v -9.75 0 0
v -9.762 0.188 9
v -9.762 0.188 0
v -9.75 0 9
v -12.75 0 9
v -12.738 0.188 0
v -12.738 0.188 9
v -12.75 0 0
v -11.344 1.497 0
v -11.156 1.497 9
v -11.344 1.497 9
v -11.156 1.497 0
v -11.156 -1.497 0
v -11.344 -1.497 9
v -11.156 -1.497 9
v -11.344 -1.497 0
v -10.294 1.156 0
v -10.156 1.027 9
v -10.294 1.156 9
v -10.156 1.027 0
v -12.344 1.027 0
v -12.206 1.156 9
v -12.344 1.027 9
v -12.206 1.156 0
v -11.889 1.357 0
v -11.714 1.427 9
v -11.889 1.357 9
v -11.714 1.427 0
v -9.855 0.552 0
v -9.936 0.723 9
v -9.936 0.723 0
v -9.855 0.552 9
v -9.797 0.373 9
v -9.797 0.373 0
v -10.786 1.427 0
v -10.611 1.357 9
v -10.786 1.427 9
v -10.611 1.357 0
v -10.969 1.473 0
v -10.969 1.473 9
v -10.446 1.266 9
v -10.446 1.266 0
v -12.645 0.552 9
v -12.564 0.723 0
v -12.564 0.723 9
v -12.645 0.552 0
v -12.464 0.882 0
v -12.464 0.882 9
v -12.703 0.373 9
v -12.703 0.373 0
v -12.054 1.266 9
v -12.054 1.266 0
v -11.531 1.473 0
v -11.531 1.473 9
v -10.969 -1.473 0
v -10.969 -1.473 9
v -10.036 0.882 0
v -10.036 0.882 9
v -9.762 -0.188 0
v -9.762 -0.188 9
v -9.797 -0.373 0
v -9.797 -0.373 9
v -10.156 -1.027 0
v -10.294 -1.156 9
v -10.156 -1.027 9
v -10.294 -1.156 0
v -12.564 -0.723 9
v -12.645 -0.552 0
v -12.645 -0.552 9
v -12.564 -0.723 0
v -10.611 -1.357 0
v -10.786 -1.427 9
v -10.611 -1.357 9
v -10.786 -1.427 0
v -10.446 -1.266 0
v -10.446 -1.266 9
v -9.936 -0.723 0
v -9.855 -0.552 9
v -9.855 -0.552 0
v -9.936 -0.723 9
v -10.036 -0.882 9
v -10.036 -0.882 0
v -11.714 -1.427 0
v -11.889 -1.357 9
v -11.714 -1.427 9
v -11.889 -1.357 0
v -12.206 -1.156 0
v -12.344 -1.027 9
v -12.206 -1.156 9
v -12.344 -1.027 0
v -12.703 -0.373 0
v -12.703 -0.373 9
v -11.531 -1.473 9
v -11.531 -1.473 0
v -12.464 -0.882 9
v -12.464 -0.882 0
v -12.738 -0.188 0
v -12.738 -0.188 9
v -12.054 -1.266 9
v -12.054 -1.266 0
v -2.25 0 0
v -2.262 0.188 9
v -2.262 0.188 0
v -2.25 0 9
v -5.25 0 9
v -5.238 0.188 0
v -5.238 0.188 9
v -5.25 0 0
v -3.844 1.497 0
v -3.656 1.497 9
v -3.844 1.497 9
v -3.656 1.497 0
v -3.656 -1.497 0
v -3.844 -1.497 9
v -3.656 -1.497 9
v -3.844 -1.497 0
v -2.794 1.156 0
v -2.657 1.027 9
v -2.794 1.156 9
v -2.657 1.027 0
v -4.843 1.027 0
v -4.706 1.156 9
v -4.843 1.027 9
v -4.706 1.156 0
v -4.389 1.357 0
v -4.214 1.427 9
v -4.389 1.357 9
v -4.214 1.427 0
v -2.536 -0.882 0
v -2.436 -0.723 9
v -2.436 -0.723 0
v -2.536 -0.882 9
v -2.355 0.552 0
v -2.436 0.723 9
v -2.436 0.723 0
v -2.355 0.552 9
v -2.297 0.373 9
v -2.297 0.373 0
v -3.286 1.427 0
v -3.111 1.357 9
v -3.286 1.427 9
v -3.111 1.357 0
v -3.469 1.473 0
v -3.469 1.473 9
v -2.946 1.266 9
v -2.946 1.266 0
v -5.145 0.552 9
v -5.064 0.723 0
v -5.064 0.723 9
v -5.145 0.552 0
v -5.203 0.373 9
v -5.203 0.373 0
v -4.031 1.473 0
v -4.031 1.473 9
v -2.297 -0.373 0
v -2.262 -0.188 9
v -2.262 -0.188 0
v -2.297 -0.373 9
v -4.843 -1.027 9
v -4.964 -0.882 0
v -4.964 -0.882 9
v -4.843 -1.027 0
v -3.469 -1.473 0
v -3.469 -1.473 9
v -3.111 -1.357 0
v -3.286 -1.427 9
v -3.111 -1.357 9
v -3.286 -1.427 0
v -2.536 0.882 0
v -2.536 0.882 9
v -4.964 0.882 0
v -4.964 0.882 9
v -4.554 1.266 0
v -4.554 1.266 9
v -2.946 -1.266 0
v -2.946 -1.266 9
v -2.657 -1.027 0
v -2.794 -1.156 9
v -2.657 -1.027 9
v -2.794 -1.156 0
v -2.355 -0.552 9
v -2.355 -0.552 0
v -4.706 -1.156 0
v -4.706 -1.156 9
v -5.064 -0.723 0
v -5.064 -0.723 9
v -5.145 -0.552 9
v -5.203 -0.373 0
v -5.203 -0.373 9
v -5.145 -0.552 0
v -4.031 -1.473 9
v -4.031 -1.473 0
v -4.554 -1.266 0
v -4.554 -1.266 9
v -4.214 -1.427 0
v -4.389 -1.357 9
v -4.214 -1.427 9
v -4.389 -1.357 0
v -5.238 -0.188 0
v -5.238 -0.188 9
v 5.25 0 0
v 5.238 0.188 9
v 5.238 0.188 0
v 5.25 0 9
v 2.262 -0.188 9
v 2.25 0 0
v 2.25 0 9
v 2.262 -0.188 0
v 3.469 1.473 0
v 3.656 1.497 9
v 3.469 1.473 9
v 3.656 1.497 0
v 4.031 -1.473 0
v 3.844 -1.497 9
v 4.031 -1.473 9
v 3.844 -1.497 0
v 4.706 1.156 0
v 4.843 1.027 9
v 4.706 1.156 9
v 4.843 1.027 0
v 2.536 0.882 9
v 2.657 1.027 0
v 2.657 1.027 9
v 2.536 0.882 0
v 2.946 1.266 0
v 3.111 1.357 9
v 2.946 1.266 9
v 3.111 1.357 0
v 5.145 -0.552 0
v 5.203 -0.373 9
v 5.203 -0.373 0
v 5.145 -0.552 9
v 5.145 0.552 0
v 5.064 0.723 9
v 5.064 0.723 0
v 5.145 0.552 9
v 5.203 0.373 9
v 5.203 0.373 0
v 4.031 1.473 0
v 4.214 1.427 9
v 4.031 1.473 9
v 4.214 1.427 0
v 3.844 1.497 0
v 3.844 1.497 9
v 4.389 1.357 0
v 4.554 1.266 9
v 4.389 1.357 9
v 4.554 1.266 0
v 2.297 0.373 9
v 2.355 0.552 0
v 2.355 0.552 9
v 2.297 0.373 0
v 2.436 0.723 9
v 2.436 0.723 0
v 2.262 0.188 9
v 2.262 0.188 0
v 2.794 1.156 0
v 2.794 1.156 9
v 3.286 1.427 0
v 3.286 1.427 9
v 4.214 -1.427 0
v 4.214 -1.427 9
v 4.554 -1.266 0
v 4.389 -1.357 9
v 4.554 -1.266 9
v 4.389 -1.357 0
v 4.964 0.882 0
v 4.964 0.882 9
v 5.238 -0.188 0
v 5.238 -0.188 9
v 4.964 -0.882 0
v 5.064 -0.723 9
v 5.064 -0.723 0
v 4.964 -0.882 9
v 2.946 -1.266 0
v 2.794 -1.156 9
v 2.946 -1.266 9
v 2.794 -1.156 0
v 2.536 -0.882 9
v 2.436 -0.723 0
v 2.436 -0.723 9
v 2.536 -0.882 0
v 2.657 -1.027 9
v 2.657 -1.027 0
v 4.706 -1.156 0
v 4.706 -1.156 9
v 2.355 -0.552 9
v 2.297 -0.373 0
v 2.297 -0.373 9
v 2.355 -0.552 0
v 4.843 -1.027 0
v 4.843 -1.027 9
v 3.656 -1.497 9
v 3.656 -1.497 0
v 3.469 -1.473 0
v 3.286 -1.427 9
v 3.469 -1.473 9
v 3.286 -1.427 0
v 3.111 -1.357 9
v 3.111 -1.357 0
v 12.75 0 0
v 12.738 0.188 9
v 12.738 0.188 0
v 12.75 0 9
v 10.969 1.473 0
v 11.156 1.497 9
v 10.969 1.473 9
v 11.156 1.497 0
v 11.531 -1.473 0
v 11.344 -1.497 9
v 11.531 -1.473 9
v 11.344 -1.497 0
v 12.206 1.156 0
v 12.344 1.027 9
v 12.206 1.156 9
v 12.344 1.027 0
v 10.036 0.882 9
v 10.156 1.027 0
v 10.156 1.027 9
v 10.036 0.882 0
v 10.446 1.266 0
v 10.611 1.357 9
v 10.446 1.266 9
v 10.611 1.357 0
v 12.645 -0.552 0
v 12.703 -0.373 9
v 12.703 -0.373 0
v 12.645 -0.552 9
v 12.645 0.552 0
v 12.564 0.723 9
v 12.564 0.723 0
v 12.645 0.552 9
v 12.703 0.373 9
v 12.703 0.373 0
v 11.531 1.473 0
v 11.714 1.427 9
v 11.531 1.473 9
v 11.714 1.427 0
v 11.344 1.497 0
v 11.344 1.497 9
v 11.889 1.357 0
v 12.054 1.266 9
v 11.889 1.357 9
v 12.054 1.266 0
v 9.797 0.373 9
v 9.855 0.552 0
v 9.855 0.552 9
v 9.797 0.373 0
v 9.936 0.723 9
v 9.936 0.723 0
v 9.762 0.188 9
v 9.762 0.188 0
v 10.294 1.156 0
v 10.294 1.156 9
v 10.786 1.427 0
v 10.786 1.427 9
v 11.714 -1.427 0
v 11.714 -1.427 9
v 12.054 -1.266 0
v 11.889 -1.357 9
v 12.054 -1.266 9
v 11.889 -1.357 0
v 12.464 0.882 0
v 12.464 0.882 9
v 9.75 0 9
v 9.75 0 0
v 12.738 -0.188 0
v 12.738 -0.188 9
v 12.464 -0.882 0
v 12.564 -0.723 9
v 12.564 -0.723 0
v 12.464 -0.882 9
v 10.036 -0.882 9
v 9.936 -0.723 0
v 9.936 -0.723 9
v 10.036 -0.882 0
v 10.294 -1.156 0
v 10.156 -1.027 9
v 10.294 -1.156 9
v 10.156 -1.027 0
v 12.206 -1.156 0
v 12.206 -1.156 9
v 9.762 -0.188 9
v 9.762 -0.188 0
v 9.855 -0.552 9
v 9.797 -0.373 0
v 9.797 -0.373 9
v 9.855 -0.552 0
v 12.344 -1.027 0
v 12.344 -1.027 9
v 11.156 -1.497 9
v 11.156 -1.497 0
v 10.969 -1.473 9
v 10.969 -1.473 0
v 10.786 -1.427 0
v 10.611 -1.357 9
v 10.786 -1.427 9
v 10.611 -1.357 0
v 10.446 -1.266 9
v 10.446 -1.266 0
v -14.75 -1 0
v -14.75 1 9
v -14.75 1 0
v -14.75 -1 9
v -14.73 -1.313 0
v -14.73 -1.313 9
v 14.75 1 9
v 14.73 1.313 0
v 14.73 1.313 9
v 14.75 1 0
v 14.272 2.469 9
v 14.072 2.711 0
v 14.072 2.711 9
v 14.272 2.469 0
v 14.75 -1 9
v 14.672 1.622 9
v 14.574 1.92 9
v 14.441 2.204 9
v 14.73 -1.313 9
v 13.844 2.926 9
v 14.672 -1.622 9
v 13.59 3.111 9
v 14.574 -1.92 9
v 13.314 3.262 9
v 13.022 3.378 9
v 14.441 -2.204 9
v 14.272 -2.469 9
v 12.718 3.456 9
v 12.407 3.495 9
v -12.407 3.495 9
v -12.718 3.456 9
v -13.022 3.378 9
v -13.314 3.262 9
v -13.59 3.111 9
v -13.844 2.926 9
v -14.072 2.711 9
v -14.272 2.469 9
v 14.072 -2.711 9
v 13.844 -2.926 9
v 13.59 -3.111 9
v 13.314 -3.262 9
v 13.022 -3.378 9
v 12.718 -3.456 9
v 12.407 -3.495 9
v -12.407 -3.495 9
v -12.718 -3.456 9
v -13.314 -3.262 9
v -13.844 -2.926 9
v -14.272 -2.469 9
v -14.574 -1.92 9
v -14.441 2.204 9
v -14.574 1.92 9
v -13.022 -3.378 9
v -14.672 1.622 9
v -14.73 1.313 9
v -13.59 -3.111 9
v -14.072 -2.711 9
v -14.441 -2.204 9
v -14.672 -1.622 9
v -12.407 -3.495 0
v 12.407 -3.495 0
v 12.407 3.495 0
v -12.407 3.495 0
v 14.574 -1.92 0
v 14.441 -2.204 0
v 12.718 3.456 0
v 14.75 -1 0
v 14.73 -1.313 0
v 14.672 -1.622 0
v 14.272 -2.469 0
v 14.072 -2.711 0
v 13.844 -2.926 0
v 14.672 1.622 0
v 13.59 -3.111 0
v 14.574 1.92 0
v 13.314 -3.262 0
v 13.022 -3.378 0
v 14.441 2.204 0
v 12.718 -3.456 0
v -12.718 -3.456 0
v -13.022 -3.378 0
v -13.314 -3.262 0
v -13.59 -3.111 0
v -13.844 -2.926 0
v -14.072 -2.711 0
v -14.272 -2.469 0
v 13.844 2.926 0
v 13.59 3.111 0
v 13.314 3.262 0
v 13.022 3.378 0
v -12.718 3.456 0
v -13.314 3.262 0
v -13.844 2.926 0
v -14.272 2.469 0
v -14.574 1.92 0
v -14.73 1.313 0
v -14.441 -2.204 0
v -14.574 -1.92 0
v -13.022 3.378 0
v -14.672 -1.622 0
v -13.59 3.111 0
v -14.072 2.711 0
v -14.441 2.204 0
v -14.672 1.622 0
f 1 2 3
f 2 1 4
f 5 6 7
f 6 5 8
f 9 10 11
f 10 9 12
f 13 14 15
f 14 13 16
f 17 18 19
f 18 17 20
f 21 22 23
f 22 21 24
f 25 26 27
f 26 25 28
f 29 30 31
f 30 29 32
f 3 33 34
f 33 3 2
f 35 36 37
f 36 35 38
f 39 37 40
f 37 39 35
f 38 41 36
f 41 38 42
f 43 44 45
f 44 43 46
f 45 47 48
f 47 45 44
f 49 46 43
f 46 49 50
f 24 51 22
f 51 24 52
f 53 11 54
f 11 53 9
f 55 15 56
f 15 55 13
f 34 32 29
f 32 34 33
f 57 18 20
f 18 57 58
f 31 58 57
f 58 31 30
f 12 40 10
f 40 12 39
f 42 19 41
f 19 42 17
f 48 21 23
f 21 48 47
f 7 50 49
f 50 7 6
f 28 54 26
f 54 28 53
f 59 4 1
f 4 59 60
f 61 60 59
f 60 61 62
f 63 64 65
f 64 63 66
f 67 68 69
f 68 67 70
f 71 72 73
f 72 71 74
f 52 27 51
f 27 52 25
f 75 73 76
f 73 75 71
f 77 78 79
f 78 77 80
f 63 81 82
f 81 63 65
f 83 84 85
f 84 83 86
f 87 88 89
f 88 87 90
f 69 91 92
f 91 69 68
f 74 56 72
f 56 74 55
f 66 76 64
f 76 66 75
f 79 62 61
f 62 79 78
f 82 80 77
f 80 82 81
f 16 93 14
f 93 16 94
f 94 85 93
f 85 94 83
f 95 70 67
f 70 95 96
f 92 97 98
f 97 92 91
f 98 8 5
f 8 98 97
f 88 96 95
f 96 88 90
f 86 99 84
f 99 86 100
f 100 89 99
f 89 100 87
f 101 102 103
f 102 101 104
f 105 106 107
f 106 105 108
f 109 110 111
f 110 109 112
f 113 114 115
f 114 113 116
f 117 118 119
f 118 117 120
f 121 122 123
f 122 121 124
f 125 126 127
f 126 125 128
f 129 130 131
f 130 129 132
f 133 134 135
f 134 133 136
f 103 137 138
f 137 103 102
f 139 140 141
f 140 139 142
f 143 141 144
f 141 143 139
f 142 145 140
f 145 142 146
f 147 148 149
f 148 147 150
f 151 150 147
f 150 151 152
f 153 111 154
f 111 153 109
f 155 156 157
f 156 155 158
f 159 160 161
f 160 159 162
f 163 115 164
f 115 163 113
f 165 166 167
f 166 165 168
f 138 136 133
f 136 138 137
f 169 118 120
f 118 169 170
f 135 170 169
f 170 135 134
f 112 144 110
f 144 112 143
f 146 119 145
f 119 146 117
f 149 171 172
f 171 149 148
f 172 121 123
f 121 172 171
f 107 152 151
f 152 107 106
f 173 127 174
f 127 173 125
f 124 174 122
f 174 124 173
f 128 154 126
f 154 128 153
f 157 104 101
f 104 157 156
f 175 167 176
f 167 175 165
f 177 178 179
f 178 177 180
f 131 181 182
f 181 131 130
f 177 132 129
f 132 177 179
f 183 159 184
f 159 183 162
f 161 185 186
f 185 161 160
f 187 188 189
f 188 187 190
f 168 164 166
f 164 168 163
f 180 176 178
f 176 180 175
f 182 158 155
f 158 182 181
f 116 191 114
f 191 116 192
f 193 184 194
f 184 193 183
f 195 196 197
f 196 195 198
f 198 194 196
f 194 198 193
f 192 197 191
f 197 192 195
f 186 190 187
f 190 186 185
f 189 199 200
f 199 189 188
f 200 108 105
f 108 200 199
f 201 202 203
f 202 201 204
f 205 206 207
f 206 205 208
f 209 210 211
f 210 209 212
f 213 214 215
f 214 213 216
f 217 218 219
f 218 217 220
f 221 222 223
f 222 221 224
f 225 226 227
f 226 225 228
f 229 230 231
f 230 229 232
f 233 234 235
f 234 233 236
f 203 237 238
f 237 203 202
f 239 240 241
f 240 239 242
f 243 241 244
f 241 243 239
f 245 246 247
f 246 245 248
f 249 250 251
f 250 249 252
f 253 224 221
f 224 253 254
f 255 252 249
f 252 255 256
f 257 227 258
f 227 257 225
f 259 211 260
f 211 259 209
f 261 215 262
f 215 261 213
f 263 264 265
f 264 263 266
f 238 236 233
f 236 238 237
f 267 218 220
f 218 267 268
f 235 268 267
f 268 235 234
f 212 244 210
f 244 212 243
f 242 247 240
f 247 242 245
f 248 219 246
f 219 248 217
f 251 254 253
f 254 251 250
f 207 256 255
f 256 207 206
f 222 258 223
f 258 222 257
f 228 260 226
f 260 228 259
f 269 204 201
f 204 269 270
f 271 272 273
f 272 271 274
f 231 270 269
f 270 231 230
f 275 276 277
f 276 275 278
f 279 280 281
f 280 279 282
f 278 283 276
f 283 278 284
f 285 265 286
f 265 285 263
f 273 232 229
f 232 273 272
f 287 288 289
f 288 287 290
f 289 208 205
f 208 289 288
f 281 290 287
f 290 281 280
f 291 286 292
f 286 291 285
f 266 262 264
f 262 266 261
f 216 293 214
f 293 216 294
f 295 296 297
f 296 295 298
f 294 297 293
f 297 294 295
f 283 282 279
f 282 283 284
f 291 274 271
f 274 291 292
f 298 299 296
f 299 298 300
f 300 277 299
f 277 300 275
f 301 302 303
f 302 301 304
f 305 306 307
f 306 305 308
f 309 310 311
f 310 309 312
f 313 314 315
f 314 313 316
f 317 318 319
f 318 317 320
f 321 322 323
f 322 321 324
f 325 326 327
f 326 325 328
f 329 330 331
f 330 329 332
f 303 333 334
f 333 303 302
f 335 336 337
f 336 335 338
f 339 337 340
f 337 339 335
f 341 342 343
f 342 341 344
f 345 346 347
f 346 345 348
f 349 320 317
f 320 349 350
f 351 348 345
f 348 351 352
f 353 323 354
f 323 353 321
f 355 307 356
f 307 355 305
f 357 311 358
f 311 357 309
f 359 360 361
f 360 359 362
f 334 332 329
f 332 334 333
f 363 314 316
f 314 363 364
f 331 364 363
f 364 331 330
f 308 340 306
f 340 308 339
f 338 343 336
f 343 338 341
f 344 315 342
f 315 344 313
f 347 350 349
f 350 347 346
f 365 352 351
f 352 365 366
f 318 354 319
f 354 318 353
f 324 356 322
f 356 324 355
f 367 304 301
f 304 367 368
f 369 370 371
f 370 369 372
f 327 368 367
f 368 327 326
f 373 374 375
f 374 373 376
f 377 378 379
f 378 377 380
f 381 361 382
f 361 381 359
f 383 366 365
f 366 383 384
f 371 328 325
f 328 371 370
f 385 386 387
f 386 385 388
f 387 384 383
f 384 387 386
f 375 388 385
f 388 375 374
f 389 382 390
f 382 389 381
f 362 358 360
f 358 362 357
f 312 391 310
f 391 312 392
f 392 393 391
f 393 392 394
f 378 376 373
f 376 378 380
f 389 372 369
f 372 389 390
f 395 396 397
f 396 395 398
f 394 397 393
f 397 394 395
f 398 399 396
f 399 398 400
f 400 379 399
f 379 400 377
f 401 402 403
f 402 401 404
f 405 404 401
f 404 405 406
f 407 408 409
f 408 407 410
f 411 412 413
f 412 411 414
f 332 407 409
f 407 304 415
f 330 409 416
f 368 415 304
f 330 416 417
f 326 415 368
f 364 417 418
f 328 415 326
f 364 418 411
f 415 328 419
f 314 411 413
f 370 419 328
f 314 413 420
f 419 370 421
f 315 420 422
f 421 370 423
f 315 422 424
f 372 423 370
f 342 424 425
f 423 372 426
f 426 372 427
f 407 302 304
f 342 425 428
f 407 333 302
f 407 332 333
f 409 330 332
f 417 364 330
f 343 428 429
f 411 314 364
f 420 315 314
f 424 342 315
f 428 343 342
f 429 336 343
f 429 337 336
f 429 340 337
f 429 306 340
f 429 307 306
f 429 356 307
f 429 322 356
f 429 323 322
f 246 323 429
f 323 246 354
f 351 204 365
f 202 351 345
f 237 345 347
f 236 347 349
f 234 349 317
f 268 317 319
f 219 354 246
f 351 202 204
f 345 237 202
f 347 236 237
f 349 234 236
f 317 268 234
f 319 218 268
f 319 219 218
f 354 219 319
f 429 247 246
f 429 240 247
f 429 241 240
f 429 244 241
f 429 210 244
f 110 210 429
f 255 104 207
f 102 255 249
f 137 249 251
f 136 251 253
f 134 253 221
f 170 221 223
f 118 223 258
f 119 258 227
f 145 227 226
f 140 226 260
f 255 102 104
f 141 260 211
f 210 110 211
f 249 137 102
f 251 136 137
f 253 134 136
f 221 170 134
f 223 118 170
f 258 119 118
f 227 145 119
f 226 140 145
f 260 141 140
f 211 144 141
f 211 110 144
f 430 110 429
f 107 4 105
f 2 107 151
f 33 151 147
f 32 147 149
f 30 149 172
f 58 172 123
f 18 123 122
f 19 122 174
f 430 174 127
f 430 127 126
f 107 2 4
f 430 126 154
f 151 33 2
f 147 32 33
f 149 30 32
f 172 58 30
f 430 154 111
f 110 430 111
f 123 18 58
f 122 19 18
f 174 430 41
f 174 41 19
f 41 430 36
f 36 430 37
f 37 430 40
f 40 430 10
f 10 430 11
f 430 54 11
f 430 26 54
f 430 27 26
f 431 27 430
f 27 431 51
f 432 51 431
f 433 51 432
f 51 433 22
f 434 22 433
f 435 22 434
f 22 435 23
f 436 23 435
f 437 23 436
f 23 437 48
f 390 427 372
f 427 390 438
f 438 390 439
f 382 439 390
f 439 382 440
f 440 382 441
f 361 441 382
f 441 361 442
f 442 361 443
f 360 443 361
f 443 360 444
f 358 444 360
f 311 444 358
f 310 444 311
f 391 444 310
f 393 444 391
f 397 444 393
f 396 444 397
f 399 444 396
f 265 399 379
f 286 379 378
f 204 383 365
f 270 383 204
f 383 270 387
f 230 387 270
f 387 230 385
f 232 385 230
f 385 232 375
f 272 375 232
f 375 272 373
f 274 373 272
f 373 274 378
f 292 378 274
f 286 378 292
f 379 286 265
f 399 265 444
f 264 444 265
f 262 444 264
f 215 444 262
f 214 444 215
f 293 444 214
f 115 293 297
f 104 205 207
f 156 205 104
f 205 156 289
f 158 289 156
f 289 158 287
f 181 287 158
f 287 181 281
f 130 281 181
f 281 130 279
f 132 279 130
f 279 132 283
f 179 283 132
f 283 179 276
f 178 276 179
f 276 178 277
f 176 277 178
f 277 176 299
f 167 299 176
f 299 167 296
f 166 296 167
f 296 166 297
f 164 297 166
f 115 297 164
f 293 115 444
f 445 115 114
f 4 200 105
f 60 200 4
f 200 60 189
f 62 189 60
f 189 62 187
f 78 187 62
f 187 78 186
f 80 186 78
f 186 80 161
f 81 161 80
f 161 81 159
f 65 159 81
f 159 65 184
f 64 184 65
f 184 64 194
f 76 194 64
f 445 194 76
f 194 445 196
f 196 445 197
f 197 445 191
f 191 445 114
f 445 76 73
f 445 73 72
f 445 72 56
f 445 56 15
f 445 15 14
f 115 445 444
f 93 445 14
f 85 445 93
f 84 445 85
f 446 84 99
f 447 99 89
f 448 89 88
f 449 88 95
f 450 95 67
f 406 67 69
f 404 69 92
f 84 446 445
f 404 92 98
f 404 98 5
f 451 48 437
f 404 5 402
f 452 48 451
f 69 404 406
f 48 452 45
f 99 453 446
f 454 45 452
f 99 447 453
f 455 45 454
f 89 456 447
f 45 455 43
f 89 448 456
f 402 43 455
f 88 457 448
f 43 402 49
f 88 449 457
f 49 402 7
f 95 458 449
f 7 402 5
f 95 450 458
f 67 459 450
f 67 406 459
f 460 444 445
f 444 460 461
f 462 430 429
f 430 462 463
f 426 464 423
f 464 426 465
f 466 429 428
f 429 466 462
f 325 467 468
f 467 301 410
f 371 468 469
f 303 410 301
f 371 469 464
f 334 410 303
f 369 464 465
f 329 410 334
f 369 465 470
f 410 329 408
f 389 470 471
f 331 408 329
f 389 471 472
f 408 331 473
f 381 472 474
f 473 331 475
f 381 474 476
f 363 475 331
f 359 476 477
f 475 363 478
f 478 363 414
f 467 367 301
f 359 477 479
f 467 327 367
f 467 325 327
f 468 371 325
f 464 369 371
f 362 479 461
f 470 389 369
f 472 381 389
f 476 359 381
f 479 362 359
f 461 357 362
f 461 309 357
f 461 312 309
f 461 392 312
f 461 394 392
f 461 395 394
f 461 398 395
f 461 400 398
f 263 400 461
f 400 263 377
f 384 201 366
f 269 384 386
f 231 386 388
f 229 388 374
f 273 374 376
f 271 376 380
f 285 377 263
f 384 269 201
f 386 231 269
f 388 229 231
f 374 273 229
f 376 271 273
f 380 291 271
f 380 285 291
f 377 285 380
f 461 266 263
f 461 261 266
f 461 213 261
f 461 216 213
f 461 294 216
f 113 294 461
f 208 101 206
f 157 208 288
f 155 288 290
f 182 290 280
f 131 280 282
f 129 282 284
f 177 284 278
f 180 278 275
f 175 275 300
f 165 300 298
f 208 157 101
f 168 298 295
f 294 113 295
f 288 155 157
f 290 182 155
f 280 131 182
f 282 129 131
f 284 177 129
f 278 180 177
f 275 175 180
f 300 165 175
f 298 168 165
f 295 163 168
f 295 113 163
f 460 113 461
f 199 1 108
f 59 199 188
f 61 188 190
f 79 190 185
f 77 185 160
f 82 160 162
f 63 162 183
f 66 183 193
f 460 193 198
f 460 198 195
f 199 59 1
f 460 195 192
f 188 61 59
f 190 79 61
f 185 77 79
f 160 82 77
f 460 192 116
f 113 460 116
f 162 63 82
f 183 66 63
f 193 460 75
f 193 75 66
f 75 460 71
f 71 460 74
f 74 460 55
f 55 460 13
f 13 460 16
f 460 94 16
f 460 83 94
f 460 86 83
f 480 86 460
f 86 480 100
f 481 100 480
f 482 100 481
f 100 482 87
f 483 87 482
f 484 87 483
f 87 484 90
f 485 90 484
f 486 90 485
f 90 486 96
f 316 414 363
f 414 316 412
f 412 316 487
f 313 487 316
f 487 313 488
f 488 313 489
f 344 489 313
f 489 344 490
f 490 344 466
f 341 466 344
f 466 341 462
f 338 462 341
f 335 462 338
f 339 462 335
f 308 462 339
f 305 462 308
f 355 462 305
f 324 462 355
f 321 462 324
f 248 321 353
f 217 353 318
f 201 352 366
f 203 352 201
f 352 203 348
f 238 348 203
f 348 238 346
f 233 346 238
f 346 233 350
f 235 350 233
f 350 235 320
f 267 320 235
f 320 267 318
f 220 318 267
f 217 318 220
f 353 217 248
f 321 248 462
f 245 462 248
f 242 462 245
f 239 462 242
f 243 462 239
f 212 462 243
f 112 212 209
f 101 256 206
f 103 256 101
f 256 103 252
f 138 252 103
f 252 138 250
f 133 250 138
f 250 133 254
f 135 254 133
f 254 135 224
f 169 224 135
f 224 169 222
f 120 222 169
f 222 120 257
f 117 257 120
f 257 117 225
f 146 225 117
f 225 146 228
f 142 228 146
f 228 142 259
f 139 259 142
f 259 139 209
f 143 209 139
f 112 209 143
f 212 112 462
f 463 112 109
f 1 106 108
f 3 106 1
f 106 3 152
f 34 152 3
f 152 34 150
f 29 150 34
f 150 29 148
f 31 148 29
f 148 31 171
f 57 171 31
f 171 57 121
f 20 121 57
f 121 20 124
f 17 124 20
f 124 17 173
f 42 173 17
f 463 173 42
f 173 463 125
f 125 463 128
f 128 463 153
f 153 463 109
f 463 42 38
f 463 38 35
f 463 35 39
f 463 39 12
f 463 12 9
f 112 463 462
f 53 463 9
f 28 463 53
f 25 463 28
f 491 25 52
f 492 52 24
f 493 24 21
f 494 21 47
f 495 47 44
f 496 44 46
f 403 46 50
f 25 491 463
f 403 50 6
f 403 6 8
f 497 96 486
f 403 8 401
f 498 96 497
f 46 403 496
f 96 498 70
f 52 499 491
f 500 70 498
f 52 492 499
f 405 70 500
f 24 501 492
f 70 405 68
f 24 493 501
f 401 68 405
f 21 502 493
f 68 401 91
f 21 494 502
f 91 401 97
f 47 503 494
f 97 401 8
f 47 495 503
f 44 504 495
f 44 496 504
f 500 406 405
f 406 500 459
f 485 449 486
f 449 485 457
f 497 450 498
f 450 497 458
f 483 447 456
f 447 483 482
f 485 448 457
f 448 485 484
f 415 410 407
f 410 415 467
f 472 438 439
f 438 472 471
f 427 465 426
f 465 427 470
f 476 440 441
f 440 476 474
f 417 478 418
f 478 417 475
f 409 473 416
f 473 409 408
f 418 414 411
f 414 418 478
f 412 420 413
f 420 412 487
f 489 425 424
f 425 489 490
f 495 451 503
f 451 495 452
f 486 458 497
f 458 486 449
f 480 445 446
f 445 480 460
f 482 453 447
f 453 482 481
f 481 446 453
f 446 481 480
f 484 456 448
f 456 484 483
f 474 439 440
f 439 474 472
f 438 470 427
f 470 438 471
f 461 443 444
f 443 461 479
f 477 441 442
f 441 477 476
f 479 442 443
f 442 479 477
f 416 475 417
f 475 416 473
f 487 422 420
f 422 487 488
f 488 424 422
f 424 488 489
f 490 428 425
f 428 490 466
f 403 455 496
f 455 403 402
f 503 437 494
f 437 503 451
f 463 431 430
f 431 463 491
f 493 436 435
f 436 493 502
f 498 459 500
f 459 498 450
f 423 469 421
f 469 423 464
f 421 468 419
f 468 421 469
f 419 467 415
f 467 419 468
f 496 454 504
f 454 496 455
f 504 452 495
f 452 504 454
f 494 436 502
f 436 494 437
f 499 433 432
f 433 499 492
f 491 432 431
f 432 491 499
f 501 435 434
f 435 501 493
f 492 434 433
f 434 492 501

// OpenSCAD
$fn = 50;


difference() {
	union() {
		translate(v = [0, 0, 0]) {
			rotate(a = [0, 0, 0]) {
				hull() {
					translate(v = [-12.2500000000, 1.0000000000, 0]) {
						rotate(a = [0, 0, 0]) {
							translate(v = [0, 0, 0]) {
								rotate(a = [0, 0, 0]) {
									cylinder(h = 9, r = 2.5000000000);
								}
							}
						}
					}
					translate(v = [12.2500000000, 1.0000000000, 0]) {
						rotate(a = [0, 0, 0]) {
							translate(v = [0, 0, 0]) {
								rotate(a = [0, 0, 0]) {
									cylinder(h = 9, r = 2.5000000000);
								}
							}
						}
					}
					translate(v = [-12.2500000000, -1.0000000000, 0]) {
						rotate(a = [0, 0, 0]) {
							translate(v = [0, 0, 0]) {
								rotate(a = [0, 0, 0]) {
									cylinder(h = 9, r = 2.5000000000);
								}
							}
						}
					}
					translate(v = [12.2500000000, -1.0000000000, 0]) {
						rotate(a = [0, 0, 0]) {
							translate(v = [0, 0, 0]) {
								rotate(a = [0, 0, 0]) {
									cylinder(h = 9, r = 2.5000000000);
								}
							}
						}
					}
				}
			}
		}
	}
	union() {
		translate(v = [-11.2500000000, 0.0000000000, 0]) {
			rotate(a = [0, 0, 0]) {
				translate(v = [0, 0, -50]) {
					rotate(a = [0, 0, 0]) {
						cylinder(h = 100, r = 1.5000000000);
					}
				}
			}
		}
		translate(v = [-3.7500000000, 0.0000000000, 0]) {
			rotate(a = [0, 0, 0]) {
				translate(v = [0, 0, -50]) {
					rotate(a = [0, 0, 0]) {
						cylinder(h = 100, r = 1.5000000000);
					}
				}
			}
		}
		translate(v = [3.7500000000, 0.0000000000, 0]) {
			rotate(a = [0, 0, 0]) {
				translate(v = [0, 0, -50]) {
					rotate(a = [0, 0, 0]) {
						cylinder(h = 100, r = 1.5000000000);
					}
				}
			}
		}
		translate(v = [11.2500000000, 0.0000000000, 0]) {
			rotate(a = [0, 0, 0]) {
				translate(v = [0, 0, -50]) {
					rotate(a = [0, 0, 0]) {
						cylinder(h = 100, r = 1.5000000000);
					}
				}
			}
		}
	}
}
